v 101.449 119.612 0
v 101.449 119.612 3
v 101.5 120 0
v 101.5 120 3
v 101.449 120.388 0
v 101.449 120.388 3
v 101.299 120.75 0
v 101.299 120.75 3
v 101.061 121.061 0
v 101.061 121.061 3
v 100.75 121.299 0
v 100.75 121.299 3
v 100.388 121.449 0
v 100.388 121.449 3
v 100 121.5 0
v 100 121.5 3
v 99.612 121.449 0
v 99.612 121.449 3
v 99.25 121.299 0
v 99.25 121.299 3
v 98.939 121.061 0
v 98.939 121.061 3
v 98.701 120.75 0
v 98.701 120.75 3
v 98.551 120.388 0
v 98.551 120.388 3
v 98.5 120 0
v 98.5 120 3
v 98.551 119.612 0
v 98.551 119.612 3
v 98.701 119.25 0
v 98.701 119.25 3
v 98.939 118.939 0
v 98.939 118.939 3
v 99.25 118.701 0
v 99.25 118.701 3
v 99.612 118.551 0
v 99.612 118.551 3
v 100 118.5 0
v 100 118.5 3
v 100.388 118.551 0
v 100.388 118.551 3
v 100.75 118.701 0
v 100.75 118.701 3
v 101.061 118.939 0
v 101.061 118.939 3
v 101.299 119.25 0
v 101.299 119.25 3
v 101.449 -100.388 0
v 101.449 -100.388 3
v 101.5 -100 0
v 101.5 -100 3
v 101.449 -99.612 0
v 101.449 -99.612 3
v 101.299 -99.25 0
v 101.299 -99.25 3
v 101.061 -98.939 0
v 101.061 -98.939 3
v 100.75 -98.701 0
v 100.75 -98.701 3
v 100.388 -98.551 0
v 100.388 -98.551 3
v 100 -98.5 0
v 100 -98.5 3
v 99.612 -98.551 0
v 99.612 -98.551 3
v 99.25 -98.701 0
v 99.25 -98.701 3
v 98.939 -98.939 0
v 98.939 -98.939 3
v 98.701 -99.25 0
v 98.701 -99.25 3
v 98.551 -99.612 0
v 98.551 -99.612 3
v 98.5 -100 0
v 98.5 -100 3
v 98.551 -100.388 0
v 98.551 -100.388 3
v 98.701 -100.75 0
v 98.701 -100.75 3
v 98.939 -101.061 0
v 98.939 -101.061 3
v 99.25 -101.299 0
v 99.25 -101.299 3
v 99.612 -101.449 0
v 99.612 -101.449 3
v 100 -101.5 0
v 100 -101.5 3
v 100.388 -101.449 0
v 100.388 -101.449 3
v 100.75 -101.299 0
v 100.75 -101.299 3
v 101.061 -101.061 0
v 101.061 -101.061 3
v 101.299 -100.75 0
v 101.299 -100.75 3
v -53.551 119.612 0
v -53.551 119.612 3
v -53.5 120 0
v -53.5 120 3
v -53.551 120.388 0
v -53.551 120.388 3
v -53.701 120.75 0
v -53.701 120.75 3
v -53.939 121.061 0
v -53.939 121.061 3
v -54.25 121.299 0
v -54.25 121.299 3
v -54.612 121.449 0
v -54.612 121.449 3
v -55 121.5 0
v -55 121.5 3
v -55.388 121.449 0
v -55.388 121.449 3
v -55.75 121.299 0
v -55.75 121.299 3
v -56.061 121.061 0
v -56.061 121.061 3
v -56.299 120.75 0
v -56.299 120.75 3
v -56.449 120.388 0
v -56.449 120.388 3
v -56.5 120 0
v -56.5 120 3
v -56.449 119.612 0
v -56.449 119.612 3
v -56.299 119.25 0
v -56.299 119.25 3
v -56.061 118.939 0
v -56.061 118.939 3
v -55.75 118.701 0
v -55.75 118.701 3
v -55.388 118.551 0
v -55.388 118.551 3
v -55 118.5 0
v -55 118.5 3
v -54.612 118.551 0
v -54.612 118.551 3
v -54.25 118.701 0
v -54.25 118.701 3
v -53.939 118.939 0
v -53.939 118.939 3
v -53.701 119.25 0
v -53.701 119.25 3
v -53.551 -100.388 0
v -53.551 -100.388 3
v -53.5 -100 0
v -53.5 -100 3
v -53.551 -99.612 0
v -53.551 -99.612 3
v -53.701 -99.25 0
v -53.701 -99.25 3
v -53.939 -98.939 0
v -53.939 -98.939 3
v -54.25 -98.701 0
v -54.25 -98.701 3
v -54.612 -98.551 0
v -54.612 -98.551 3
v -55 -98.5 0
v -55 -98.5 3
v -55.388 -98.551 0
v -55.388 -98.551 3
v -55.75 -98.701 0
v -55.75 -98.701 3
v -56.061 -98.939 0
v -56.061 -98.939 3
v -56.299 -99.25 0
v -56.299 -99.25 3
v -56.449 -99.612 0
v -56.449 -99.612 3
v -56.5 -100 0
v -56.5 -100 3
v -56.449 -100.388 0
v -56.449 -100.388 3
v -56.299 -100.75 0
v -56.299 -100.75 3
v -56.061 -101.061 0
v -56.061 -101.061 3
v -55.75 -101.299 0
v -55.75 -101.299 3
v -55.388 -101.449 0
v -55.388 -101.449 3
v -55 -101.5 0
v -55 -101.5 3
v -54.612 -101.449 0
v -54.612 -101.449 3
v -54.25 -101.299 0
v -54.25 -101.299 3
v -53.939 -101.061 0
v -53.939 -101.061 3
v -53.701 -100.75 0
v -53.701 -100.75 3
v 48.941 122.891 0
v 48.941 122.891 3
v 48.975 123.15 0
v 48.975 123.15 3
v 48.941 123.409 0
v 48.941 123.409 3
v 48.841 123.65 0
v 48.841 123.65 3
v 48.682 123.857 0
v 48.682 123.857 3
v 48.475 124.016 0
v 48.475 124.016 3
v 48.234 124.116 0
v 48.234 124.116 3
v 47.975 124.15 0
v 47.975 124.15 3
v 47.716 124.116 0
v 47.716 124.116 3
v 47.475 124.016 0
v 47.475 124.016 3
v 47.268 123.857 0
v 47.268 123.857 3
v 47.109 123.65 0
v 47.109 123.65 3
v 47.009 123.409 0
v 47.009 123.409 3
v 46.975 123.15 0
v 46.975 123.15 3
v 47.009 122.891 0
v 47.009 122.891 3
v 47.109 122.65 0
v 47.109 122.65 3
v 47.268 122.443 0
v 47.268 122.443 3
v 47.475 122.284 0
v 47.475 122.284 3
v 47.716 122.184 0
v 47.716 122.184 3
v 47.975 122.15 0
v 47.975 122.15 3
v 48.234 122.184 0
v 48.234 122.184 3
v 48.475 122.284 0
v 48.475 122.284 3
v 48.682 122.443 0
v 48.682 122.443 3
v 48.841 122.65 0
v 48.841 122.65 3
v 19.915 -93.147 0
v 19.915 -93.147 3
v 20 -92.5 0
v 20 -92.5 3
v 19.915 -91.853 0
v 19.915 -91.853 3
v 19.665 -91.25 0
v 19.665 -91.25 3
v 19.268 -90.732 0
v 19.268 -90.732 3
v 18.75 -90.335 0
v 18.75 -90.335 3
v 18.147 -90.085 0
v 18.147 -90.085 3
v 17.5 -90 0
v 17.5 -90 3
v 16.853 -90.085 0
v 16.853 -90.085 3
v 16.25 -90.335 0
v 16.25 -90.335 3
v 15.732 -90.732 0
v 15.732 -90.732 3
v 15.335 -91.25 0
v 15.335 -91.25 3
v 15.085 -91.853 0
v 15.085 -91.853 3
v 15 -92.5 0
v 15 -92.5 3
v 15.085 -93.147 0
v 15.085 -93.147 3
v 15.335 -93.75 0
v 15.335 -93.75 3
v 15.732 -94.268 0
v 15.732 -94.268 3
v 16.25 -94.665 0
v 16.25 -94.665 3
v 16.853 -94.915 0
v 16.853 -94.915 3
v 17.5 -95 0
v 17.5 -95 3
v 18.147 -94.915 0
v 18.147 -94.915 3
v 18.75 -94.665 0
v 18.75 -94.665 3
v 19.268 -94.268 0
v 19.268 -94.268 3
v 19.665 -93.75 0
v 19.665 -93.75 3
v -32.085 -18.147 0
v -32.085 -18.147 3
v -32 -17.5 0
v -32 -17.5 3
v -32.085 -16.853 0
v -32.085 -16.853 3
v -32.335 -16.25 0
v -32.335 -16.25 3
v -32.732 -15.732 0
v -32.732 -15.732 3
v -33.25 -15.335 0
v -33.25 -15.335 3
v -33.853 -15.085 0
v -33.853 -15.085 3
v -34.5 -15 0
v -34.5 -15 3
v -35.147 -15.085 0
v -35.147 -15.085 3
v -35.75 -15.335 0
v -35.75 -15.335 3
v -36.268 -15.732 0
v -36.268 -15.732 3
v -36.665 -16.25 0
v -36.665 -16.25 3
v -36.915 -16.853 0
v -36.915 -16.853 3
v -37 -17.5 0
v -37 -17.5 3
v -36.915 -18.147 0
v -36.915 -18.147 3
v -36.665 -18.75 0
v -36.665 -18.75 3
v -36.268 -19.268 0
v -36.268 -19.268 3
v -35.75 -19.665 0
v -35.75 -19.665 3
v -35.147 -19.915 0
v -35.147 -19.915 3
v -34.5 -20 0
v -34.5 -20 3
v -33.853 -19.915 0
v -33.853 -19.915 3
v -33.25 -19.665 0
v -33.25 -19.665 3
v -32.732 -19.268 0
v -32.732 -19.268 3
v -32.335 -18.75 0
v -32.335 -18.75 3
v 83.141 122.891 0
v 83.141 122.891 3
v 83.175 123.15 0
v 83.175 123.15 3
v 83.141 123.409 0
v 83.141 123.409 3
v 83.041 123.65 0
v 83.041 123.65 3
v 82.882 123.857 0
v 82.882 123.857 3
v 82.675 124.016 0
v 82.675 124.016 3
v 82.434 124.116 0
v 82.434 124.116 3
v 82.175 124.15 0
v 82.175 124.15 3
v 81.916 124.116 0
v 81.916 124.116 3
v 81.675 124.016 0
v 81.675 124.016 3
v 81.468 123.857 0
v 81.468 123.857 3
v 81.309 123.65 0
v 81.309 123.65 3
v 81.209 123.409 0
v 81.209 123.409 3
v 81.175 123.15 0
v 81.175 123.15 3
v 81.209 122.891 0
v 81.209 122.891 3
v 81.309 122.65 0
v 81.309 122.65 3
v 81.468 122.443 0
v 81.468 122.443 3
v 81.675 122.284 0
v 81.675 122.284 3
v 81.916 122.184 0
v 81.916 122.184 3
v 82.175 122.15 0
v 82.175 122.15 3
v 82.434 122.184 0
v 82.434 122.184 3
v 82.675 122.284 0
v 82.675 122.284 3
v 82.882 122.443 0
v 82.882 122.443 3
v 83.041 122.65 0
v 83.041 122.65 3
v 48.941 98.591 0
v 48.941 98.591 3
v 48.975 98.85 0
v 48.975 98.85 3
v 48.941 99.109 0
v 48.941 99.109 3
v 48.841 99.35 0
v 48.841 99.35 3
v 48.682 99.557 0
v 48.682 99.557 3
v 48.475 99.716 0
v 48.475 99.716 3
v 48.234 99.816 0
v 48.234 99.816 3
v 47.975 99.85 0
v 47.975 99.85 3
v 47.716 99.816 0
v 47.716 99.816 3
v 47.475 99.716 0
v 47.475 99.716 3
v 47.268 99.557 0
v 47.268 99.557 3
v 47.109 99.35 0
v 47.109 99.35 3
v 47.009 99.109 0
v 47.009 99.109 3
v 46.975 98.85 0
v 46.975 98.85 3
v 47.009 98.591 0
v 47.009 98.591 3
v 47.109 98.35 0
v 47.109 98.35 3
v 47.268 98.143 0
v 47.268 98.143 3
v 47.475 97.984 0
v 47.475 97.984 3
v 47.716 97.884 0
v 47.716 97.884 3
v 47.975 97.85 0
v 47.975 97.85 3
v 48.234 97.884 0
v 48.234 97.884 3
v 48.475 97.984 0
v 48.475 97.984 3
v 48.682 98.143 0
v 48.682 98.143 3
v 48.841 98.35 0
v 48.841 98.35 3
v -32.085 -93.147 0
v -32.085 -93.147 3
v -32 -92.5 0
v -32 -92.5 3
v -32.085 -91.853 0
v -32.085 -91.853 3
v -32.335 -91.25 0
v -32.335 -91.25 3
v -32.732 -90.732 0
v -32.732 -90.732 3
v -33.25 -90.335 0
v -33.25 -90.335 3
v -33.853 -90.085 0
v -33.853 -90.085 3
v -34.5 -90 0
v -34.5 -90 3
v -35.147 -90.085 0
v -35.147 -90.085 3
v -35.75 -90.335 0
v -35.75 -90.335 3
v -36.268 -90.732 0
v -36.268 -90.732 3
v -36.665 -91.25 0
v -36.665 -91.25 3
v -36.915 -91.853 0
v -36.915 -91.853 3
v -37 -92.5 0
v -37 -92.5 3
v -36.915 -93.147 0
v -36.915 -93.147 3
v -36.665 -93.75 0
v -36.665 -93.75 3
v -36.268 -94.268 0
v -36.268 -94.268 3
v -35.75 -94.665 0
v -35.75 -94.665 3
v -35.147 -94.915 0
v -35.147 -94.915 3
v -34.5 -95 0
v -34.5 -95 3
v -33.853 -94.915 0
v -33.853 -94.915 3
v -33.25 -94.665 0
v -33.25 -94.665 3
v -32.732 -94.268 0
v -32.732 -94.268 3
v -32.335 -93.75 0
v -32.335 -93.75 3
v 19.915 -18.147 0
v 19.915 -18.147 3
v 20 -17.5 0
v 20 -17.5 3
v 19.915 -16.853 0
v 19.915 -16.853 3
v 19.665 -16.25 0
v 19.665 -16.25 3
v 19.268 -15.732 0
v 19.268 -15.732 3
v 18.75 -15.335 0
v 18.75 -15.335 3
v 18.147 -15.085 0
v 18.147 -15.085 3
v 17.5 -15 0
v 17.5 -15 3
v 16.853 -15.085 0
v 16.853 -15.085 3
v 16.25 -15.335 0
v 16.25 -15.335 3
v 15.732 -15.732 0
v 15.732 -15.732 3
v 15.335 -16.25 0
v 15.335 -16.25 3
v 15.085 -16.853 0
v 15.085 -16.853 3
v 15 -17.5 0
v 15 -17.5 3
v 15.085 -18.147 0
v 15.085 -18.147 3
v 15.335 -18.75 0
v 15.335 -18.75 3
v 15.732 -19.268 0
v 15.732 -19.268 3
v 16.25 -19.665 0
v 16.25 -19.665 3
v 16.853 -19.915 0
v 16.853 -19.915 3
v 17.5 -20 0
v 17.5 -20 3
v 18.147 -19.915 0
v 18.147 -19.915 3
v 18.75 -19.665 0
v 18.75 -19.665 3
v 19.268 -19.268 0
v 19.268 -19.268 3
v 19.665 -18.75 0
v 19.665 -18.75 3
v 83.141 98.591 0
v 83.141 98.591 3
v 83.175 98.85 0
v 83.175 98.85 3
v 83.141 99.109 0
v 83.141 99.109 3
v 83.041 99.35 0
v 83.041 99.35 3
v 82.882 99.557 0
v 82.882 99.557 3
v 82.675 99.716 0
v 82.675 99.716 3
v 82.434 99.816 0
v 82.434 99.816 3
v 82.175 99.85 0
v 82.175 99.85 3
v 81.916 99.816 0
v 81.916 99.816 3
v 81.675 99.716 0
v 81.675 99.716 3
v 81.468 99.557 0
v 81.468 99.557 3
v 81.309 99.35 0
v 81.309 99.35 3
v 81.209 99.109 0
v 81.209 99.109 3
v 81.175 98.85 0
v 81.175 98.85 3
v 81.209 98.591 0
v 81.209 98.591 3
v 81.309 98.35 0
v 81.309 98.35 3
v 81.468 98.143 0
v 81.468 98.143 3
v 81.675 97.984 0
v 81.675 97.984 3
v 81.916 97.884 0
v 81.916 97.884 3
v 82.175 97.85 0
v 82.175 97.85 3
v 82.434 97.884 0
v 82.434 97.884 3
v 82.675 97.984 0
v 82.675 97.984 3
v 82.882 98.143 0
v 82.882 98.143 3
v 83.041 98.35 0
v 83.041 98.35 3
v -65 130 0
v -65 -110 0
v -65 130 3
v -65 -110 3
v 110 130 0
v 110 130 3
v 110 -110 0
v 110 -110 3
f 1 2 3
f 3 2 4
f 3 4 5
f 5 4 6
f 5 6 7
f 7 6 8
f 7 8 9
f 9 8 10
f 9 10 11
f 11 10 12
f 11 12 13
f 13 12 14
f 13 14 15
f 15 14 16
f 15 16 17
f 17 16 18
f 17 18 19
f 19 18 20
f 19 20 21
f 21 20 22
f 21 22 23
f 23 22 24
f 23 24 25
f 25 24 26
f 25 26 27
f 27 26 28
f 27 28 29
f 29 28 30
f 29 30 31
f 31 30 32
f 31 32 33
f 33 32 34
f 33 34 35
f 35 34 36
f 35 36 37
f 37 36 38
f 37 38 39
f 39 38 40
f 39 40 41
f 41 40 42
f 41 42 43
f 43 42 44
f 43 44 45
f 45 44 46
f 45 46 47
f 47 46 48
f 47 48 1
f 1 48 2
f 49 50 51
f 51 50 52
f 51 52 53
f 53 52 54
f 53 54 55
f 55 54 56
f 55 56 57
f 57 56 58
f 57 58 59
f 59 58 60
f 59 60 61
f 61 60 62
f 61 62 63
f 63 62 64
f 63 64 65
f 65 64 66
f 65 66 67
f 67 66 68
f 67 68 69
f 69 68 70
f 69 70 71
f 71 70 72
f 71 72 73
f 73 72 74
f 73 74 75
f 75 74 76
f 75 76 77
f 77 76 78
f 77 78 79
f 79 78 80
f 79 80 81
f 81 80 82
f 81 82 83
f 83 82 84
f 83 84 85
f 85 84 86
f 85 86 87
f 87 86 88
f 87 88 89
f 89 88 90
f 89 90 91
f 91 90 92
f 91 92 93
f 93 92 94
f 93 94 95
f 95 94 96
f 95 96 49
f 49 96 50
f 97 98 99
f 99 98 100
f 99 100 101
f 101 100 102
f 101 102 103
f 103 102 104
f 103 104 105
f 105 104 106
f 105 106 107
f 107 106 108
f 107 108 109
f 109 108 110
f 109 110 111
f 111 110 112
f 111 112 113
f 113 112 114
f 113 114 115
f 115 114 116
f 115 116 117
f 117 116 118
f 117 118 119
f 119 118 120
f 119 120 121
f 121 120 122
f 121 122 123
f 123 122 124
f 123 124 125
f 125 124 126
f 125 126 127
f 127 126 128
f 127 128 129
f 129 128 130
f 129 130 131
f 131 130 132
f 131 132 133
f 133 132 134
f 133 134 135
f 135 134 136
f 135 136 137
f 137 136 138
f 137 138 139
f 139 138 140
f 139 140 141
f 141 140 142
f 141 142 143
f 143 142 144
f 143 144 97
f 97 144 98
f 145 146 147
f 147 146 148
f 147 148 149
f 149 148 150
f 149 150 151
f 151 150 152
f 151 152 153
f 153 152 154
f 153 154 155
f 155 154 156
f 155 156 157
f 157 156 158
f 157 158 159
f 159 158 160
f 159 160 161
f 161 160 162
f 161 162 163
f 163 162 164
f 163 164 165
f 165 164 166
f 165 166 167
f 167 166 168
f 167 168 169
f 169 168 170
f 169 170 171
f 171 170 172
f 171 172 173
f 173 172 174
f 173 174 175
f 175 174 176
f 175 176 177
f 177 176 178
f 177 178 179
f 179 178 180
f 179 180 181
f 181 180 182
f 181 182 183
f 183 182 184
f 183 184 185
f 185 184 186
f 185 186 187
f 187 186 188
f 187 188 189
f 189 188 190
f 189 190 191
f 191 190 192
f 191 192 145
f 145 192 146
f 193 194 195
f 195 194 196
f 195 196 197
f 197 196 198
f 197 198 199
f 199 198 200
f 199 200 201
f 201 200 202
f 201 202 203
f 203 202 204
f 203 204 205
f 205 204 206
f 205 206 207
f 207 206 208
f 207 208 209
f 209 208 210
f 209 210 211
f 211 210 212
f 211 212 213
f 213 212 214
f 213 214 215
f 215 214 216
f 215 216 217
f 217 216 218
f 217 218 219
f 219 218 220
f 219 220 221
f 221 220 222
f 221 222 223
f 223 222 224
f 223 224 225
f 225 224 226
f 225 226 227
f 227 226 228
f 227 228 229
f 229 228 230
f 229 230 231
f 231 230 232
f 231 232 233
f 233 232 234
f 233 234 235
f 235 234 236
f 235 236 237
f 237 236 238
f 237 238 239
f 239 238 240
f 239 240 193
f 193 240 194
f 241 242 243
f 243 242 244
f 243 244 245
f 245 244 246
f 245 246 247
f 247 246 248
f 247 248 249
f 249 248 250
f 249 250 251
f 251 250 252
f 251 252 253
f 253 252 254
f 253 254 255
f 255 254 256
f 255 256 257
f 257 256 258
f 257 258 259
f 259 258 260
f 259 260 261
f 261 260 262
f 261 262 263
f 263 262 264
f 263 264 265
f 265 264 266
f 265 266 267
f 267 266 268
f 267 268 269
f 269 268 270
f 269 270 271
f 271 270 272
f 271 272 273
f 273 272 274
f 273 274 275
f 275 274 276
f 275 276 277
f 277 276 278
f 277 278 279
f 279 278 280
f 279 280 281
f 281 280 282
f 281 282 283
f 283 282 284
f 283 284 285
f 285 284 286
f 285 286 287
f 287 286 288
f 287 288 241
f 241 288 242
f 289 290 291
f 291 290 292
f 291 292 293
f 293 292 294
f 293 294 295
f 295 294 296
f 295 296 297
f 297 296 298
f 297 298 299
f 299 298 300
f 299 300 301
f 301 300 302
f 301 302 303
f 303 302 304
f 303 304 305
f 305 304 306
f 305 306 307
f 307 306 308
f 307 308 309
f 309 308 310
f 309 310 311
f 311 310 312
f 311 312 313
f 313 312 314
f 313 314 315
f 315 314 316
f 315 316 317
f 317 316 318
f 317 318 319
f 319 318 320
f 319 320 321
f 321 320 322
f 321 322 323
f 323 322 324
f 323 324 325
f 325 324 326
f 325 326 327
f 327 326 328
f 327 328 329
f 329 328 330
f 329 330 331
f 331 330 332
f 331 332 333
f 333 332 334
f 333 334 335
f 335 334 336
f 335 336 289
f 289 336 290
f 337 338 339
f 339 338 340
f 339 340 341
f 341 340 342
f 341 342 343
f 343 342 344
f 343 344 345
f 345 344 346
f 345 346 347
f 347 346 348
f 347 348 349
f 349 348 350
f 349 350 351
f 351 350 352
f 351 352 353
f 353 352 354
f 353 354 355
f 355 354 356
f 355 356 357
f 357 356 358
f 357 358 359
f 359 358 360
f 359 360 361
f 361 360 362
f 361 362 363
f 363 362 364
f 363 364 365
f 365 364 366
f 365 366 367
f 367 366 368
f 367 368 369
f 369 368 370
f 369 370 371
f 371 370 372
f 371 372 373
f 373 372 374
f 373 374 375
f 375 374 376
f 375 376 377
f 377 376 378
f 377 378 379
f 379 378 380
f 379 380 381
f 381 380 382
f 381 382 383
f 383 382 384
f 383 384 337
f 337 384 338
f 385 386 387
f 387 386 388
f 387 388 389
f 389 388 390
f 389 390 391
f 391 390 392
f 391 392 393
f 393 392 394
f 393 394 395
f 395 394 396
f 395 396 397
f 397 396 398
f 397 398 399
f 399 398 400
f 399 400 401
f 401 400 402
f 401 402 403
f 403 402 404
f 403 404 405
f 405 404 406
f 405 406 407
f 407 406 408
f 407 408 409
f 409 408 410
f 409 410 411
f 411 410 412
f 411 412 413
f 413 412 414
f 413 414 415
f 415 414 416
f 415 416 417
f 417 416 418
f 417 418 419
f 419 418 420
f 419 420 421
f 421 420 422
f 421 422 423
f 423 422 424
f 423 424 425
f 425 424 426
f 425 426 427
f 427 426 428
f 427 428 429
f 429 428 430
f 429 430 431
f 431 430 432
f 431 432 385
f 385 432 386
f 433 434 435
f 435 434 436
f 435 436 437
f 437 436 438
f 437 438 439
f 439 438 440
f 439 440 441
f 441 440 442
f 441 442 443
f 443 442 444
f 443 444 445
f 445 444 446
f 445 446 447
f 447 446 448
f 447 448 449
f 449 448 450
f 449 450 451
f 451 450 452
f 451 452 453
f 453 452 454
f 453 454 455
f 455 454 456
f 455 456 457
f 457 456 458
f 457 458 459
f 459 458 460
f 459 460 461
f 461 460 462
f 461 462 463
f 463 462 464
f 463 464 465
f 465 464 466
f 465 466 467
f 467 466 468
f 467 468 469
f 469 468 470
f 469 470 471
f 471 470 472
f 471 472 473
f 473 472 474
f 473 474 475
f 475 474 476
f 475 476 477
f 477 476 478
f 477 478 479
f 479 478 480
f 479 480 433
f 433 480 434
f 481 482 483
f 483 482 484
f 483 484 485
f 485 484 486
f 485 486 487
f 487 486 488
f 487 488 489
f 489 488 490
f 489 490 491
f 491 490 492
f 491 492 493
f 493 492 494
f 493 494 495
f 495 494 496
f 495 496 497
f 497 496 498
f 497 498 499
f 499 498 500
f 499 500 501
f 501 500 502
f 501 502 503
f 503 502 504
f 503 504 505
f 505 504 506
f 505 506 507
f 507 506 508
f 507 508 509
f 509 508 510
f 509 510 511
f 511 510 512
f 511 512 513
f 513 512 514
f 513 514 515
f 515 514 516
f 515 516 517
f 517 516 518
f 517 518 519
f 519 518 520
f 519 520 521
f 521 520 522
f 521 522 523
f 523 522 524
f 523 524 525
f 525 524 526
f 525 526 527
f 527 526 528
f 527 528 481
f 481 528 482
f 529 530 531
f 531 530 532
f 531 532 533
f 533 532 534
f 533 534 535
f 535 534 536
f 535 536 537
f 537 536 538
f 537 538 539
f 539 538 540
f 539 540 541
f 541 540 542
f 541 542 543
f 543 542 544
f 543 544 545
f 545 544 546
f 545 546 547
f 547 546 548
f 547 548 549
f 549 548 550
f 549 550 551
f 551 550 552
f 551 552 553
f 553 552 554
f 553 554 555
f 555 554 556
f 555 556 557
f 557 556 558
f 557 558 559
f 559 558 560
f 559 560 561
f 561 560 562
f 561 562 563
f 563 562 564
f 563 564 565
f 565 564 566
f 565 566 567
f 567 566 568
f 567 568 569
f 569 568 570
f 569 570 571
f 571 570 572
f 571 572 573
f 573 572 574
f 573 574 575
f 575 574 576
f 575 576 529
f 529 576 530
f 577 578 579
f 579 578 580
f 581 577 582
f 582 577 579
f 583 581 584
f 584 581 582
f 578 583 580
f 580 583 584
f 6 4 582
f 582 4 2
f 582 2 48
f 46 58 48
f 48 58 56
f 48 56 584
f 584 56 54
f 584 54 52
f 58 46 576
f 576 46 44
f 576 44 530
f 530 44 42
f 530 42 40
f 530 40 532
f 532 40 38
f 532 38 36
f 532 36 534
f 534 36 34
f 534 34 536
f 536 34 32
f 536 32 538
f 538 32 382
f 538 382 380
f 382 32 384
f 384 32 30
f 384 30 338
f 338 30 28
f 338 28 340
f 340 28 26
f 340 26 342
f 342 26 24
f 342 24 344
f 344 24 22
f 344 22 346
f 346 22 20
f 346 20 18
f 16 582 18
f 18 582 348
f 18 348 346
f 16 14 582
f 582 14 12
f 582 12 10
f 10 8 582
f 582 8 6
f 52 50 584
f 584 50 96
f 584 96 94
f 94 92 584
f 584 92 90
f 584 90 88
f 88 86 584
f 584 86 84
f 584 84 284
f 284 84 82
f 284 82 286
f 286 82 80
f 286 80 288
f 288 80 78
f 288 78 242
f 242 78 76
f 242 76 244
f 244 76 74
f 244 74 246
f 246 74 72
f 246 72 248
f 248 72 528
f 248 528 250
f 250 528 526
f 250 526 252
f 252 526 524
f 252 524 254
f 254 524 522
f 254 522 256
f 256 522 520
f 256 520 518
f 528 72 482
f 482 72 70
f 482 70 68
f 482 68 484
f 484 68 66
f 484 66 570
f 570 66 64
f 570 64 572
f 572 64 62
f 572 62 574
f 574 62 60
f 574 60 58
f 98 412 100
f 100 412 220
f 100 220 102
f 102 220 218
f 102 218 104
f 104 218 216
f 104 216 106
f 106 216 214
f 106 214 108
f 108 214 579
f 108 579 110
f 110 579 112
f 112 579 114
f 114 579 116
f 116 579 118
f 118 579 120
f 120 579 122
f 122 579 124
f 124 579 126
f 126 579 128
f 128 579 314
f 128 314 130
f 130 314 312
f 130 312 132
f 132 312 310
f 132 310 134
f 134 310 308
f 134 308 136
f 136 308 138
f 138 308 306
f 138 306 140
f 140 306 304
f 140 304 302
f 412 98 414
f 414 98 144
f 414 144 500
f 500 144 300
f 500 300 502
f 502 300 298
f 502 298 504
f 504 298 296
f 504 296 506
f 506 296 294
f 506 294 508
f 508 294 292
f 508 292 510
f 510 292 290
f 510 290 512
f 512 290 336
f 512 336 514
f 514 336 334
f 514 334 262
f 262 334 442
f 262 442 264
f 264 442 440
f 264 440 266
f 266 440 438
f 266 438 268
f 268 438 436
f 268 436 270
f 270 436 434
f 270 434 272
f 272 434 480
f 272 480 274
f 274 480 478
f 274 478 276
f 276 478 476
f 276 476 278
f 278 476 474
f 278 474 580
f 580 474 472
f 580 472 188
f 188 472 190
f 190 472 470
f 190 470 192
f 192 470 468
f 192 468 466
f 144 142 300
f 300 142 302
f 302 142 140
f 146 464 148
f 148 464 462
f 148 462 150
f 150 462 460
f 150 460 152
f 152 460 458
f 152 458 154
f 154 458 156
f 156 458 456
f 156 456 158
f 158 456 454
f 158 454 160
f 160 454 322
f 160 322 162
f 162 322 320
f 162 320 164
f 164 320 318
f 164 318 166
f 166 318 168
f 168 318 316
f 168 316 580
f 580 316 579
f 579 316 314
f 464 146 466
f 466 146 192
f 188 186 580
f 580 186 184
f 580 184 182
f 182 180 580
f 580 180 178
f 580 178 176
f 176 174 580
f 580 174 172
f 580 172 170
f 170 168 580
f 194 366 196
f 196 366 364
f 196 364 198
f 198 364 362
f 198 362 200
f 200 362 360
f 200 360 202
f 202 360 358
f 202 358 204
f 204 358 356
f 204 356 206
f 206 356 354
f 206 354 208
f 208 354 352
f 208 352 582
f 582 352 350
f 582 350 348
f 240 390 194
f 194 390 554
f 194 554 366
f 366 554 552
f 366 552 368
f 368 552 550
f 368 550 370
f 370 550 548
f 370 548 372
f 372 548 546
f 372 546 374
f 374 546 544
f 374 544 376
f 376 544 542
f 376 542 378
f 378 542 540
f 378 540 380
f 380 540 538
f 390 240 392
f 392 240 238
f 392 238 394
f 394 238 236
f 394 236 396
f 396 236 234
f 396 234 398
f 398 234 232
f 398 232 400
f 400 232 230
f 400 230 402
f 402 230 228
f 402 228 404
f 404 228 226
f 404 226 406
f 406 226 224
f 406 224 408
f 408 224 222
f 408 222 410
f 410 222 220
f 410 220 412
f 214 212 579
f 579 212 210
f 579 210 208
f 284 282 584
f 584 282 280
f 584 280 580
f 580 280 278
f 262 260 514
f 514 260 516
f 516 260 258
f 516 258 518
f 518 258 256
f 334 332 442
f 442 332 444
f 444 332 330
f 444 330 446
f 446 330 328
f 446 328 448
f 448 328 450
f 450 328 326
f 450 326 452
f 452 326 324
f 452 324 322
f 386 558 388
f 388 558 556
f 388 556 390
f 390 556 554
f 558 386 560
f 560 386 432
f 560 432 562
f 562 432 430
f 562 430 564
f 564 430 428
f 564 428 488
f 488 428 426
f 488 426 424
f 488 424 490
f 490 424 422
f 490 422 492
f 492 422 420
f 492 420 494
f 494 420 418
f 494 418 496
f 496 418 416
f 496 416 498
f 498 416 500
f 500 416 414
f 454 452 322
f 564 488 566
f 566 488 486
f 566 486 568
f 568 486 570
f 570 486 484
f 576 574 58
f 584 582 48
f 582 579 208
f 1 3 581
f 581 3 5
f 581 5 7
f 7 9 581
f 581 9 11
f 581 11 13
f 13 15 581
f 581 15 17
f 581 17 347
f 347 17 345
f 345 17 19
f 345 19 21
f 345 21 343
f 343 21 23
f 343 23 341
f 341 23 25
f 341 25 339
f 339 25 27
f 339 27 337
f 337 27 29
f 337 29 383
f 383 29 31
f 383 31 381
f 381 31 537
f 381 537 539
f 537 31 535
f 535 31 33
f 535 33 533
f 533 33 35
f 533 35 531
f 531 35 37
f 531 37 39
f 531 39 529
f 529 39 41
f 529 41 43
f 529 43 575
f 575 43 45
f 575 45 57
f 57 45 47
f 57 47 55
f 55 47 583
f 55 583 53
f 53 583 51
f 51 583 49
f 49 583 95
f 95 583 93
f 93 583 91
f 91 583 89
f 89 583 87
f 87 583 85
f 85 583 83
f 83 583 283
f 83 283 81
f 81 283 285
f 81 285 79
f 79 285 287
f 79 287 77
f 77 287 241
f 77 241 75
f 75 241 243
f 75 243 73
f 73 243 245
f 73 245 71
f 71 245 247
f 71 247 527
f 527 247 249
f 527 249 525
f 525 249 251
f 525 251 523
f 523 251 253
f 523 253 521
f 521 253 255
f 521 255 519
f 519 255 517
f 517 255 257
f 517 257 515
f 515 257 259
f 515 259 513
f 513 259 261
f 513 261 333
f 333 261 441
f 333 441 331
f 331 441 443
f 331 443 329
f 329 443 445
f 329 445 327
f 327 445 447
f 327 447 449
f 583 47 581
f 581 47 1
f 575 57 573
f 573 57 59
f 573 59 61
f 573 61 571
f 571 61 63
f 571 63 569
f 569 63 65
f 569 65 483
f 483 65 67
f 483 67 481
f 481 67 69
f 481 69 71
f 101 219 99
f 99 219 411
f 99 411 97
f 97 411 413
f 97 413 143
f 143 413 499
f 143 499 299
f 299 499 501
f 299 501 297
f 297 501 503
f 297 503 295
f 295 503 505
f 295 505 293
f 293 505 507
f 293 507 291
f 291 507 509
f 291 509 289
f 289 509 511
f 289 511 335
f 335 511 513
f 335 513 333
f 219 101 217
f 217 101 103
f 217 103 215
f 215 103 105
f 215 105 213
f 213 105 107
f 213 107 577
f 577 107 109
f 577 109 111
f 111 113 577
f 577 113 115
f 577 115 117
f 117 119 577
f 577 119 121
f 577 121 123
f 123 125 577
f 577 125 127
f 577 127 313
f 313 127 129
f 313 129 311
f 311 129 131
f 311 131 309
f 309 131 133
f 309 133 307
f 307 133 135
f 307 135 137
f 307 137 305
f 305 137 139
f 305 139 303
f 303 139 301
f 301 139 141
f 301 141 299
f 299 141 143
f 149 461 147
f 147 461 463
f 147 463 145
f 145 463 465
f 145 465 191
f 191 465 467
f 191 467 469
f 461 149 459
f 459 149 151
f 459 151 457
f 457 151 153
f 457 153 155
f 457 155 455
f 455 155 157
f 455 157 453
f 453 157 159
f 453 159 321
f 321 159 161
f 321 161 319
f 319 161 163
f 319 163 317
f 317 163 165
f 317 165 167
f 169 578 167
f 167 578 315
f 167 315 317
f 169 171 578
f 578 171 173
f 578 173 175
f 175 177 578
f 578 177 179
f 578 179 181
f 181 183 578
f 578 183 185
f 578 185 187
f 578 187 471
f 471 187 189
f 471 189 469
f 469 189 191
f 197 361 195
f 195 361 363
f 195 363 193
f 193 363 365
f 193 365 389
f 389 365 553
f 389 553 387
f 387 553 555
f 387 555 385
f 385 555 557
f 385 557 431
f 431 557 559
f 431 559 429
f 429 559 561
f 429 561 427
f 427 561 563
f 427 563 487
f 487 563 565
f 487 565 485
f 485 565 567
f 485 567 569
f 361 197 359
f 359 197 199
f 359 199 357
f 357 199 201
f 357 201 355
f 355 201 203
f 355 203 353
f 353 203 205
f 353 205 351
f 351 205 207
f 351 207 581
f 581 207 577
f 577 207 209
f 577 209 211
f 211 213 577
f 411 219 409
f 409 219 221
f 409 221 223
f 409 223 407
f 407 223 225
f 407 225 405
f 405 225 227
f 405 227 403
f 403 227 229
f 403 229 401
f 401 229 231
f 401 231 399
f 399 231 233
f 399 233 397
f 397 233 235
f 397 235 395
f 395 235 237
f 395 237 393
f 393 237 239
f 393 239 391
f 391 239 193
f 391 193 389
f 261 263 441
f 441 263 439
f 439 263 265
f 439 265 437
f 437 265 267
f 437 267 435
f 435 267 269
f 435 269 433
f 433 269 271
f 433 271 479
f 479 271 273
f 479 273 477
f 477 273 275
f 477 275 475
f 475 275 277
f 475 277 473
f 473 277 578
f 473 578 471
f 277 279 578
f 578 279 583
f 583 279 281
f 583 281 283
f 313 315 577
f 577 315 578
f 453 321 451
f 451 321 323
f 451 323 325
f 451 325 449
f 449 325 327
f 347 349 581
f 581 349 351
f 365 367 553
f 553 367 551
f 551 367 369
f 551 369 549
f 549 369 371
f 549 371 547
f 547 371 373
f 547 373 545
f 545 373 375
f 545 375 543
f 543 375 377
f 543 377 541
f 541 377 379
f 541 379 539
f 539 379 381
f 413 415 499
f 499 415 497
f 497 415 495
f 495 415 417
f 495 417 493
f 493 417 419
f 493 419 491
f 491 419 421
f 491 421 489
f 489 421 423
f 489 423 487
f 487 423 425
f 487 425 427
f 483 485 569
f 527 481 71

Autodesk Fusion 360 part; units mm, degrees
sketch "Sketch1" plane through (0, 0, 0) normal (0, 0, 1) x (1, 0, 0)
  line L0 (-65, 130) -> (110, 130)
  line L1 (110, 130) -> (110, -110)
  line L2 (110, -110) -> (-65, -110)
  line L3 (-65, -110) -> (-65, 130)
  dimension "d1" = 175
  dimension "d2" = 240
extrude "Extrude1" add sketch "Sketch1" along normal blind 3
sketch "Sketch2" plane through (0, 0, 3) normal (0, 0, 1) x (-1, 0, 0)
  line L0 (65, 110) -> (-110, 110)
  line L1 (-110, 110) -> (-110, -130)
  line L2 (-110, -130) -> (65, -130)
  line L3 (65, -130) -> (65, 110)
  circle A0 centre (34.5, 92.5) radius 2.5
  line L4 (60, 5.0001) -> (-105, 5)
  line L5 (12.025, 12.961) -> (3.6107, 13.032) construction
  line L6 (3.6107, 13.032) -> (3.5857, 10.071) construction
  line L7 (3.5857, 10.071) -> (12, 10) construction
  line L8 (12, 10) -> (12.025, 12.961) construction
  line L9 (-105, 5) -> (-105, 105.0001)
  line L10 (-105, 105.0001) -> (60, 105.0001)
  line L11 (12, 100) -> (-4.2428, 100.0343) construction
  line L12 (-4.2428, 100.0343) -> (-4.2609, 91.4763) construction
  line L13 (-4.2609, 91.4763) -> (11.9819, 91.4419) construction
  line L14 (11.9819, 91.4419) -> (12, 100) construction
  line L15 (60, 105.0001) -> (60, 5.0001)
  circle A1 centre (-17.5, 17.5) radius 2.5
  circle A2 centre (-17.5, 92.5) radius 2.5
  circle A3 centre (34.5, 17.5) radius 2.5
  line L16 (-46.15, -125) -> (-84, -125)
  line L17 (-84, -125) -> (-84, -97)
  line L18 (-84, -97) -> (-46.15, -97)
  line L19 (-46.15, -97) -> (-46.15, -125)
  circle A4 centre (-47.975, -123.15) radius 1
  circle A5 centre (-82.175, -123.15) radius 1
  circle A6 centre (-47.975, -98.85) radius 1
  circle A7 centre (-82.175, -98.85) radius 1
  dimension "d33" = 10
  dimension "d34" = 10
  dimension "d7" = 100
  dimension "d8" = 165
  dimension "d9" = 5
  dimension "d10" = 5
  dimension "d11" = 5
  dimension "d12" = 5
  dimension "d13" = 52
  dimension "d14" = 75
  dimension "d15" = 52
  dimension "d16" = 75
  dimension "d17" = 25.5
  dimension "d18" = 25.5
  dimension "d19" = 12.5
  dimension "d20" = 87.5
  dimension "d21" = 12.5
  dimension "d22" = 5
  dimension "d23" = 48
  dimension "d24" = 5
  dimension "d25" = 48
  dimension "d26" = 12.5
  dimension "d27" = 87.5
  dimension "d28" = 5
  dimension "d29" = 5
  dimension "d76" = 37.85
  dimension "d77" = 28
  dimension "d78" = 2
  dimension "d79" = 2
  dimension "d80" = 2
  dimension "d81" = 2
  dimension "d82" = 34.2
  dimension "d83" = 24.3
  dimension "d84" = 34.2
  dimension "d85" = 24.3
  dimension "d86" = 1.825
  dimension "d87" = 1.825
  dimension "d88" = 1.825
  dimension "d89" = 1.825
  dimension "d90" = 1.85
  dimension "d91" = 1.85
  dimension "d92" = 1.85
  dimension "d93" = 1.85
  dimension "d94" = 26
  dimension "d95" = 5
extrude "Extrude2" cut sketch "Sketch2" against normal blind 3 contours A0 | A1 | A2 | A3 | A4 | A5 | A6 | A7
sketch "Sketch3" plane through (0, 0, 3) normal (0, 0, 1) x (-1, 0, 0)
  circle A0 centre (-47.975, -123.15) radius 1
  circle A1 centre (-17.5, 92.5) radius 2.5
  circle A2 centre (34.5, 17.5) radius 2.5
  circle A3 centre (-82.175, -123.15) radius 1
  circle A4 centre (-47.975, -98.85) radius 1
  circle A5 centre (34.5, 92.5) radius 2.5
  circle A6 centre (-17.5, 17.5) radius 2.5
  circle A7 centre (-82.175, -98.85) radius 1
  line L0 (65, 110) -> (-110, 110)
  line L1 (-110, 110) -> (-110, -130)
  line L2 (-110, -130) -> (65, -130)
  line L3 (65, -130) -> (65, 110)
  circle A8 centre (55, -120) radius 1.5
  circle A9 centre (-100, -120) radius 1.5
  circle A10 centre (-100, 100) radius 1.5
  circle A11 centre (55, 100) radius 1.5
  dimension "d98" = 3
  dimension "d99" = 10
  dimension "d100" = 10
  dimension "d101" = 3
  dimension "d102" = 10
  dimension "d103" = 10
  dimension "d104" = 3
  dimension "d105" = 10
  dimension "d106" = 10
  dimension "d107" = 3
  dimension "d108" = 10
  dimension "d109" = 10
extrude "Extrude3" cut sketch "Sketch3" against normal blind 3 contours A8 | A9 | A10 | A11
